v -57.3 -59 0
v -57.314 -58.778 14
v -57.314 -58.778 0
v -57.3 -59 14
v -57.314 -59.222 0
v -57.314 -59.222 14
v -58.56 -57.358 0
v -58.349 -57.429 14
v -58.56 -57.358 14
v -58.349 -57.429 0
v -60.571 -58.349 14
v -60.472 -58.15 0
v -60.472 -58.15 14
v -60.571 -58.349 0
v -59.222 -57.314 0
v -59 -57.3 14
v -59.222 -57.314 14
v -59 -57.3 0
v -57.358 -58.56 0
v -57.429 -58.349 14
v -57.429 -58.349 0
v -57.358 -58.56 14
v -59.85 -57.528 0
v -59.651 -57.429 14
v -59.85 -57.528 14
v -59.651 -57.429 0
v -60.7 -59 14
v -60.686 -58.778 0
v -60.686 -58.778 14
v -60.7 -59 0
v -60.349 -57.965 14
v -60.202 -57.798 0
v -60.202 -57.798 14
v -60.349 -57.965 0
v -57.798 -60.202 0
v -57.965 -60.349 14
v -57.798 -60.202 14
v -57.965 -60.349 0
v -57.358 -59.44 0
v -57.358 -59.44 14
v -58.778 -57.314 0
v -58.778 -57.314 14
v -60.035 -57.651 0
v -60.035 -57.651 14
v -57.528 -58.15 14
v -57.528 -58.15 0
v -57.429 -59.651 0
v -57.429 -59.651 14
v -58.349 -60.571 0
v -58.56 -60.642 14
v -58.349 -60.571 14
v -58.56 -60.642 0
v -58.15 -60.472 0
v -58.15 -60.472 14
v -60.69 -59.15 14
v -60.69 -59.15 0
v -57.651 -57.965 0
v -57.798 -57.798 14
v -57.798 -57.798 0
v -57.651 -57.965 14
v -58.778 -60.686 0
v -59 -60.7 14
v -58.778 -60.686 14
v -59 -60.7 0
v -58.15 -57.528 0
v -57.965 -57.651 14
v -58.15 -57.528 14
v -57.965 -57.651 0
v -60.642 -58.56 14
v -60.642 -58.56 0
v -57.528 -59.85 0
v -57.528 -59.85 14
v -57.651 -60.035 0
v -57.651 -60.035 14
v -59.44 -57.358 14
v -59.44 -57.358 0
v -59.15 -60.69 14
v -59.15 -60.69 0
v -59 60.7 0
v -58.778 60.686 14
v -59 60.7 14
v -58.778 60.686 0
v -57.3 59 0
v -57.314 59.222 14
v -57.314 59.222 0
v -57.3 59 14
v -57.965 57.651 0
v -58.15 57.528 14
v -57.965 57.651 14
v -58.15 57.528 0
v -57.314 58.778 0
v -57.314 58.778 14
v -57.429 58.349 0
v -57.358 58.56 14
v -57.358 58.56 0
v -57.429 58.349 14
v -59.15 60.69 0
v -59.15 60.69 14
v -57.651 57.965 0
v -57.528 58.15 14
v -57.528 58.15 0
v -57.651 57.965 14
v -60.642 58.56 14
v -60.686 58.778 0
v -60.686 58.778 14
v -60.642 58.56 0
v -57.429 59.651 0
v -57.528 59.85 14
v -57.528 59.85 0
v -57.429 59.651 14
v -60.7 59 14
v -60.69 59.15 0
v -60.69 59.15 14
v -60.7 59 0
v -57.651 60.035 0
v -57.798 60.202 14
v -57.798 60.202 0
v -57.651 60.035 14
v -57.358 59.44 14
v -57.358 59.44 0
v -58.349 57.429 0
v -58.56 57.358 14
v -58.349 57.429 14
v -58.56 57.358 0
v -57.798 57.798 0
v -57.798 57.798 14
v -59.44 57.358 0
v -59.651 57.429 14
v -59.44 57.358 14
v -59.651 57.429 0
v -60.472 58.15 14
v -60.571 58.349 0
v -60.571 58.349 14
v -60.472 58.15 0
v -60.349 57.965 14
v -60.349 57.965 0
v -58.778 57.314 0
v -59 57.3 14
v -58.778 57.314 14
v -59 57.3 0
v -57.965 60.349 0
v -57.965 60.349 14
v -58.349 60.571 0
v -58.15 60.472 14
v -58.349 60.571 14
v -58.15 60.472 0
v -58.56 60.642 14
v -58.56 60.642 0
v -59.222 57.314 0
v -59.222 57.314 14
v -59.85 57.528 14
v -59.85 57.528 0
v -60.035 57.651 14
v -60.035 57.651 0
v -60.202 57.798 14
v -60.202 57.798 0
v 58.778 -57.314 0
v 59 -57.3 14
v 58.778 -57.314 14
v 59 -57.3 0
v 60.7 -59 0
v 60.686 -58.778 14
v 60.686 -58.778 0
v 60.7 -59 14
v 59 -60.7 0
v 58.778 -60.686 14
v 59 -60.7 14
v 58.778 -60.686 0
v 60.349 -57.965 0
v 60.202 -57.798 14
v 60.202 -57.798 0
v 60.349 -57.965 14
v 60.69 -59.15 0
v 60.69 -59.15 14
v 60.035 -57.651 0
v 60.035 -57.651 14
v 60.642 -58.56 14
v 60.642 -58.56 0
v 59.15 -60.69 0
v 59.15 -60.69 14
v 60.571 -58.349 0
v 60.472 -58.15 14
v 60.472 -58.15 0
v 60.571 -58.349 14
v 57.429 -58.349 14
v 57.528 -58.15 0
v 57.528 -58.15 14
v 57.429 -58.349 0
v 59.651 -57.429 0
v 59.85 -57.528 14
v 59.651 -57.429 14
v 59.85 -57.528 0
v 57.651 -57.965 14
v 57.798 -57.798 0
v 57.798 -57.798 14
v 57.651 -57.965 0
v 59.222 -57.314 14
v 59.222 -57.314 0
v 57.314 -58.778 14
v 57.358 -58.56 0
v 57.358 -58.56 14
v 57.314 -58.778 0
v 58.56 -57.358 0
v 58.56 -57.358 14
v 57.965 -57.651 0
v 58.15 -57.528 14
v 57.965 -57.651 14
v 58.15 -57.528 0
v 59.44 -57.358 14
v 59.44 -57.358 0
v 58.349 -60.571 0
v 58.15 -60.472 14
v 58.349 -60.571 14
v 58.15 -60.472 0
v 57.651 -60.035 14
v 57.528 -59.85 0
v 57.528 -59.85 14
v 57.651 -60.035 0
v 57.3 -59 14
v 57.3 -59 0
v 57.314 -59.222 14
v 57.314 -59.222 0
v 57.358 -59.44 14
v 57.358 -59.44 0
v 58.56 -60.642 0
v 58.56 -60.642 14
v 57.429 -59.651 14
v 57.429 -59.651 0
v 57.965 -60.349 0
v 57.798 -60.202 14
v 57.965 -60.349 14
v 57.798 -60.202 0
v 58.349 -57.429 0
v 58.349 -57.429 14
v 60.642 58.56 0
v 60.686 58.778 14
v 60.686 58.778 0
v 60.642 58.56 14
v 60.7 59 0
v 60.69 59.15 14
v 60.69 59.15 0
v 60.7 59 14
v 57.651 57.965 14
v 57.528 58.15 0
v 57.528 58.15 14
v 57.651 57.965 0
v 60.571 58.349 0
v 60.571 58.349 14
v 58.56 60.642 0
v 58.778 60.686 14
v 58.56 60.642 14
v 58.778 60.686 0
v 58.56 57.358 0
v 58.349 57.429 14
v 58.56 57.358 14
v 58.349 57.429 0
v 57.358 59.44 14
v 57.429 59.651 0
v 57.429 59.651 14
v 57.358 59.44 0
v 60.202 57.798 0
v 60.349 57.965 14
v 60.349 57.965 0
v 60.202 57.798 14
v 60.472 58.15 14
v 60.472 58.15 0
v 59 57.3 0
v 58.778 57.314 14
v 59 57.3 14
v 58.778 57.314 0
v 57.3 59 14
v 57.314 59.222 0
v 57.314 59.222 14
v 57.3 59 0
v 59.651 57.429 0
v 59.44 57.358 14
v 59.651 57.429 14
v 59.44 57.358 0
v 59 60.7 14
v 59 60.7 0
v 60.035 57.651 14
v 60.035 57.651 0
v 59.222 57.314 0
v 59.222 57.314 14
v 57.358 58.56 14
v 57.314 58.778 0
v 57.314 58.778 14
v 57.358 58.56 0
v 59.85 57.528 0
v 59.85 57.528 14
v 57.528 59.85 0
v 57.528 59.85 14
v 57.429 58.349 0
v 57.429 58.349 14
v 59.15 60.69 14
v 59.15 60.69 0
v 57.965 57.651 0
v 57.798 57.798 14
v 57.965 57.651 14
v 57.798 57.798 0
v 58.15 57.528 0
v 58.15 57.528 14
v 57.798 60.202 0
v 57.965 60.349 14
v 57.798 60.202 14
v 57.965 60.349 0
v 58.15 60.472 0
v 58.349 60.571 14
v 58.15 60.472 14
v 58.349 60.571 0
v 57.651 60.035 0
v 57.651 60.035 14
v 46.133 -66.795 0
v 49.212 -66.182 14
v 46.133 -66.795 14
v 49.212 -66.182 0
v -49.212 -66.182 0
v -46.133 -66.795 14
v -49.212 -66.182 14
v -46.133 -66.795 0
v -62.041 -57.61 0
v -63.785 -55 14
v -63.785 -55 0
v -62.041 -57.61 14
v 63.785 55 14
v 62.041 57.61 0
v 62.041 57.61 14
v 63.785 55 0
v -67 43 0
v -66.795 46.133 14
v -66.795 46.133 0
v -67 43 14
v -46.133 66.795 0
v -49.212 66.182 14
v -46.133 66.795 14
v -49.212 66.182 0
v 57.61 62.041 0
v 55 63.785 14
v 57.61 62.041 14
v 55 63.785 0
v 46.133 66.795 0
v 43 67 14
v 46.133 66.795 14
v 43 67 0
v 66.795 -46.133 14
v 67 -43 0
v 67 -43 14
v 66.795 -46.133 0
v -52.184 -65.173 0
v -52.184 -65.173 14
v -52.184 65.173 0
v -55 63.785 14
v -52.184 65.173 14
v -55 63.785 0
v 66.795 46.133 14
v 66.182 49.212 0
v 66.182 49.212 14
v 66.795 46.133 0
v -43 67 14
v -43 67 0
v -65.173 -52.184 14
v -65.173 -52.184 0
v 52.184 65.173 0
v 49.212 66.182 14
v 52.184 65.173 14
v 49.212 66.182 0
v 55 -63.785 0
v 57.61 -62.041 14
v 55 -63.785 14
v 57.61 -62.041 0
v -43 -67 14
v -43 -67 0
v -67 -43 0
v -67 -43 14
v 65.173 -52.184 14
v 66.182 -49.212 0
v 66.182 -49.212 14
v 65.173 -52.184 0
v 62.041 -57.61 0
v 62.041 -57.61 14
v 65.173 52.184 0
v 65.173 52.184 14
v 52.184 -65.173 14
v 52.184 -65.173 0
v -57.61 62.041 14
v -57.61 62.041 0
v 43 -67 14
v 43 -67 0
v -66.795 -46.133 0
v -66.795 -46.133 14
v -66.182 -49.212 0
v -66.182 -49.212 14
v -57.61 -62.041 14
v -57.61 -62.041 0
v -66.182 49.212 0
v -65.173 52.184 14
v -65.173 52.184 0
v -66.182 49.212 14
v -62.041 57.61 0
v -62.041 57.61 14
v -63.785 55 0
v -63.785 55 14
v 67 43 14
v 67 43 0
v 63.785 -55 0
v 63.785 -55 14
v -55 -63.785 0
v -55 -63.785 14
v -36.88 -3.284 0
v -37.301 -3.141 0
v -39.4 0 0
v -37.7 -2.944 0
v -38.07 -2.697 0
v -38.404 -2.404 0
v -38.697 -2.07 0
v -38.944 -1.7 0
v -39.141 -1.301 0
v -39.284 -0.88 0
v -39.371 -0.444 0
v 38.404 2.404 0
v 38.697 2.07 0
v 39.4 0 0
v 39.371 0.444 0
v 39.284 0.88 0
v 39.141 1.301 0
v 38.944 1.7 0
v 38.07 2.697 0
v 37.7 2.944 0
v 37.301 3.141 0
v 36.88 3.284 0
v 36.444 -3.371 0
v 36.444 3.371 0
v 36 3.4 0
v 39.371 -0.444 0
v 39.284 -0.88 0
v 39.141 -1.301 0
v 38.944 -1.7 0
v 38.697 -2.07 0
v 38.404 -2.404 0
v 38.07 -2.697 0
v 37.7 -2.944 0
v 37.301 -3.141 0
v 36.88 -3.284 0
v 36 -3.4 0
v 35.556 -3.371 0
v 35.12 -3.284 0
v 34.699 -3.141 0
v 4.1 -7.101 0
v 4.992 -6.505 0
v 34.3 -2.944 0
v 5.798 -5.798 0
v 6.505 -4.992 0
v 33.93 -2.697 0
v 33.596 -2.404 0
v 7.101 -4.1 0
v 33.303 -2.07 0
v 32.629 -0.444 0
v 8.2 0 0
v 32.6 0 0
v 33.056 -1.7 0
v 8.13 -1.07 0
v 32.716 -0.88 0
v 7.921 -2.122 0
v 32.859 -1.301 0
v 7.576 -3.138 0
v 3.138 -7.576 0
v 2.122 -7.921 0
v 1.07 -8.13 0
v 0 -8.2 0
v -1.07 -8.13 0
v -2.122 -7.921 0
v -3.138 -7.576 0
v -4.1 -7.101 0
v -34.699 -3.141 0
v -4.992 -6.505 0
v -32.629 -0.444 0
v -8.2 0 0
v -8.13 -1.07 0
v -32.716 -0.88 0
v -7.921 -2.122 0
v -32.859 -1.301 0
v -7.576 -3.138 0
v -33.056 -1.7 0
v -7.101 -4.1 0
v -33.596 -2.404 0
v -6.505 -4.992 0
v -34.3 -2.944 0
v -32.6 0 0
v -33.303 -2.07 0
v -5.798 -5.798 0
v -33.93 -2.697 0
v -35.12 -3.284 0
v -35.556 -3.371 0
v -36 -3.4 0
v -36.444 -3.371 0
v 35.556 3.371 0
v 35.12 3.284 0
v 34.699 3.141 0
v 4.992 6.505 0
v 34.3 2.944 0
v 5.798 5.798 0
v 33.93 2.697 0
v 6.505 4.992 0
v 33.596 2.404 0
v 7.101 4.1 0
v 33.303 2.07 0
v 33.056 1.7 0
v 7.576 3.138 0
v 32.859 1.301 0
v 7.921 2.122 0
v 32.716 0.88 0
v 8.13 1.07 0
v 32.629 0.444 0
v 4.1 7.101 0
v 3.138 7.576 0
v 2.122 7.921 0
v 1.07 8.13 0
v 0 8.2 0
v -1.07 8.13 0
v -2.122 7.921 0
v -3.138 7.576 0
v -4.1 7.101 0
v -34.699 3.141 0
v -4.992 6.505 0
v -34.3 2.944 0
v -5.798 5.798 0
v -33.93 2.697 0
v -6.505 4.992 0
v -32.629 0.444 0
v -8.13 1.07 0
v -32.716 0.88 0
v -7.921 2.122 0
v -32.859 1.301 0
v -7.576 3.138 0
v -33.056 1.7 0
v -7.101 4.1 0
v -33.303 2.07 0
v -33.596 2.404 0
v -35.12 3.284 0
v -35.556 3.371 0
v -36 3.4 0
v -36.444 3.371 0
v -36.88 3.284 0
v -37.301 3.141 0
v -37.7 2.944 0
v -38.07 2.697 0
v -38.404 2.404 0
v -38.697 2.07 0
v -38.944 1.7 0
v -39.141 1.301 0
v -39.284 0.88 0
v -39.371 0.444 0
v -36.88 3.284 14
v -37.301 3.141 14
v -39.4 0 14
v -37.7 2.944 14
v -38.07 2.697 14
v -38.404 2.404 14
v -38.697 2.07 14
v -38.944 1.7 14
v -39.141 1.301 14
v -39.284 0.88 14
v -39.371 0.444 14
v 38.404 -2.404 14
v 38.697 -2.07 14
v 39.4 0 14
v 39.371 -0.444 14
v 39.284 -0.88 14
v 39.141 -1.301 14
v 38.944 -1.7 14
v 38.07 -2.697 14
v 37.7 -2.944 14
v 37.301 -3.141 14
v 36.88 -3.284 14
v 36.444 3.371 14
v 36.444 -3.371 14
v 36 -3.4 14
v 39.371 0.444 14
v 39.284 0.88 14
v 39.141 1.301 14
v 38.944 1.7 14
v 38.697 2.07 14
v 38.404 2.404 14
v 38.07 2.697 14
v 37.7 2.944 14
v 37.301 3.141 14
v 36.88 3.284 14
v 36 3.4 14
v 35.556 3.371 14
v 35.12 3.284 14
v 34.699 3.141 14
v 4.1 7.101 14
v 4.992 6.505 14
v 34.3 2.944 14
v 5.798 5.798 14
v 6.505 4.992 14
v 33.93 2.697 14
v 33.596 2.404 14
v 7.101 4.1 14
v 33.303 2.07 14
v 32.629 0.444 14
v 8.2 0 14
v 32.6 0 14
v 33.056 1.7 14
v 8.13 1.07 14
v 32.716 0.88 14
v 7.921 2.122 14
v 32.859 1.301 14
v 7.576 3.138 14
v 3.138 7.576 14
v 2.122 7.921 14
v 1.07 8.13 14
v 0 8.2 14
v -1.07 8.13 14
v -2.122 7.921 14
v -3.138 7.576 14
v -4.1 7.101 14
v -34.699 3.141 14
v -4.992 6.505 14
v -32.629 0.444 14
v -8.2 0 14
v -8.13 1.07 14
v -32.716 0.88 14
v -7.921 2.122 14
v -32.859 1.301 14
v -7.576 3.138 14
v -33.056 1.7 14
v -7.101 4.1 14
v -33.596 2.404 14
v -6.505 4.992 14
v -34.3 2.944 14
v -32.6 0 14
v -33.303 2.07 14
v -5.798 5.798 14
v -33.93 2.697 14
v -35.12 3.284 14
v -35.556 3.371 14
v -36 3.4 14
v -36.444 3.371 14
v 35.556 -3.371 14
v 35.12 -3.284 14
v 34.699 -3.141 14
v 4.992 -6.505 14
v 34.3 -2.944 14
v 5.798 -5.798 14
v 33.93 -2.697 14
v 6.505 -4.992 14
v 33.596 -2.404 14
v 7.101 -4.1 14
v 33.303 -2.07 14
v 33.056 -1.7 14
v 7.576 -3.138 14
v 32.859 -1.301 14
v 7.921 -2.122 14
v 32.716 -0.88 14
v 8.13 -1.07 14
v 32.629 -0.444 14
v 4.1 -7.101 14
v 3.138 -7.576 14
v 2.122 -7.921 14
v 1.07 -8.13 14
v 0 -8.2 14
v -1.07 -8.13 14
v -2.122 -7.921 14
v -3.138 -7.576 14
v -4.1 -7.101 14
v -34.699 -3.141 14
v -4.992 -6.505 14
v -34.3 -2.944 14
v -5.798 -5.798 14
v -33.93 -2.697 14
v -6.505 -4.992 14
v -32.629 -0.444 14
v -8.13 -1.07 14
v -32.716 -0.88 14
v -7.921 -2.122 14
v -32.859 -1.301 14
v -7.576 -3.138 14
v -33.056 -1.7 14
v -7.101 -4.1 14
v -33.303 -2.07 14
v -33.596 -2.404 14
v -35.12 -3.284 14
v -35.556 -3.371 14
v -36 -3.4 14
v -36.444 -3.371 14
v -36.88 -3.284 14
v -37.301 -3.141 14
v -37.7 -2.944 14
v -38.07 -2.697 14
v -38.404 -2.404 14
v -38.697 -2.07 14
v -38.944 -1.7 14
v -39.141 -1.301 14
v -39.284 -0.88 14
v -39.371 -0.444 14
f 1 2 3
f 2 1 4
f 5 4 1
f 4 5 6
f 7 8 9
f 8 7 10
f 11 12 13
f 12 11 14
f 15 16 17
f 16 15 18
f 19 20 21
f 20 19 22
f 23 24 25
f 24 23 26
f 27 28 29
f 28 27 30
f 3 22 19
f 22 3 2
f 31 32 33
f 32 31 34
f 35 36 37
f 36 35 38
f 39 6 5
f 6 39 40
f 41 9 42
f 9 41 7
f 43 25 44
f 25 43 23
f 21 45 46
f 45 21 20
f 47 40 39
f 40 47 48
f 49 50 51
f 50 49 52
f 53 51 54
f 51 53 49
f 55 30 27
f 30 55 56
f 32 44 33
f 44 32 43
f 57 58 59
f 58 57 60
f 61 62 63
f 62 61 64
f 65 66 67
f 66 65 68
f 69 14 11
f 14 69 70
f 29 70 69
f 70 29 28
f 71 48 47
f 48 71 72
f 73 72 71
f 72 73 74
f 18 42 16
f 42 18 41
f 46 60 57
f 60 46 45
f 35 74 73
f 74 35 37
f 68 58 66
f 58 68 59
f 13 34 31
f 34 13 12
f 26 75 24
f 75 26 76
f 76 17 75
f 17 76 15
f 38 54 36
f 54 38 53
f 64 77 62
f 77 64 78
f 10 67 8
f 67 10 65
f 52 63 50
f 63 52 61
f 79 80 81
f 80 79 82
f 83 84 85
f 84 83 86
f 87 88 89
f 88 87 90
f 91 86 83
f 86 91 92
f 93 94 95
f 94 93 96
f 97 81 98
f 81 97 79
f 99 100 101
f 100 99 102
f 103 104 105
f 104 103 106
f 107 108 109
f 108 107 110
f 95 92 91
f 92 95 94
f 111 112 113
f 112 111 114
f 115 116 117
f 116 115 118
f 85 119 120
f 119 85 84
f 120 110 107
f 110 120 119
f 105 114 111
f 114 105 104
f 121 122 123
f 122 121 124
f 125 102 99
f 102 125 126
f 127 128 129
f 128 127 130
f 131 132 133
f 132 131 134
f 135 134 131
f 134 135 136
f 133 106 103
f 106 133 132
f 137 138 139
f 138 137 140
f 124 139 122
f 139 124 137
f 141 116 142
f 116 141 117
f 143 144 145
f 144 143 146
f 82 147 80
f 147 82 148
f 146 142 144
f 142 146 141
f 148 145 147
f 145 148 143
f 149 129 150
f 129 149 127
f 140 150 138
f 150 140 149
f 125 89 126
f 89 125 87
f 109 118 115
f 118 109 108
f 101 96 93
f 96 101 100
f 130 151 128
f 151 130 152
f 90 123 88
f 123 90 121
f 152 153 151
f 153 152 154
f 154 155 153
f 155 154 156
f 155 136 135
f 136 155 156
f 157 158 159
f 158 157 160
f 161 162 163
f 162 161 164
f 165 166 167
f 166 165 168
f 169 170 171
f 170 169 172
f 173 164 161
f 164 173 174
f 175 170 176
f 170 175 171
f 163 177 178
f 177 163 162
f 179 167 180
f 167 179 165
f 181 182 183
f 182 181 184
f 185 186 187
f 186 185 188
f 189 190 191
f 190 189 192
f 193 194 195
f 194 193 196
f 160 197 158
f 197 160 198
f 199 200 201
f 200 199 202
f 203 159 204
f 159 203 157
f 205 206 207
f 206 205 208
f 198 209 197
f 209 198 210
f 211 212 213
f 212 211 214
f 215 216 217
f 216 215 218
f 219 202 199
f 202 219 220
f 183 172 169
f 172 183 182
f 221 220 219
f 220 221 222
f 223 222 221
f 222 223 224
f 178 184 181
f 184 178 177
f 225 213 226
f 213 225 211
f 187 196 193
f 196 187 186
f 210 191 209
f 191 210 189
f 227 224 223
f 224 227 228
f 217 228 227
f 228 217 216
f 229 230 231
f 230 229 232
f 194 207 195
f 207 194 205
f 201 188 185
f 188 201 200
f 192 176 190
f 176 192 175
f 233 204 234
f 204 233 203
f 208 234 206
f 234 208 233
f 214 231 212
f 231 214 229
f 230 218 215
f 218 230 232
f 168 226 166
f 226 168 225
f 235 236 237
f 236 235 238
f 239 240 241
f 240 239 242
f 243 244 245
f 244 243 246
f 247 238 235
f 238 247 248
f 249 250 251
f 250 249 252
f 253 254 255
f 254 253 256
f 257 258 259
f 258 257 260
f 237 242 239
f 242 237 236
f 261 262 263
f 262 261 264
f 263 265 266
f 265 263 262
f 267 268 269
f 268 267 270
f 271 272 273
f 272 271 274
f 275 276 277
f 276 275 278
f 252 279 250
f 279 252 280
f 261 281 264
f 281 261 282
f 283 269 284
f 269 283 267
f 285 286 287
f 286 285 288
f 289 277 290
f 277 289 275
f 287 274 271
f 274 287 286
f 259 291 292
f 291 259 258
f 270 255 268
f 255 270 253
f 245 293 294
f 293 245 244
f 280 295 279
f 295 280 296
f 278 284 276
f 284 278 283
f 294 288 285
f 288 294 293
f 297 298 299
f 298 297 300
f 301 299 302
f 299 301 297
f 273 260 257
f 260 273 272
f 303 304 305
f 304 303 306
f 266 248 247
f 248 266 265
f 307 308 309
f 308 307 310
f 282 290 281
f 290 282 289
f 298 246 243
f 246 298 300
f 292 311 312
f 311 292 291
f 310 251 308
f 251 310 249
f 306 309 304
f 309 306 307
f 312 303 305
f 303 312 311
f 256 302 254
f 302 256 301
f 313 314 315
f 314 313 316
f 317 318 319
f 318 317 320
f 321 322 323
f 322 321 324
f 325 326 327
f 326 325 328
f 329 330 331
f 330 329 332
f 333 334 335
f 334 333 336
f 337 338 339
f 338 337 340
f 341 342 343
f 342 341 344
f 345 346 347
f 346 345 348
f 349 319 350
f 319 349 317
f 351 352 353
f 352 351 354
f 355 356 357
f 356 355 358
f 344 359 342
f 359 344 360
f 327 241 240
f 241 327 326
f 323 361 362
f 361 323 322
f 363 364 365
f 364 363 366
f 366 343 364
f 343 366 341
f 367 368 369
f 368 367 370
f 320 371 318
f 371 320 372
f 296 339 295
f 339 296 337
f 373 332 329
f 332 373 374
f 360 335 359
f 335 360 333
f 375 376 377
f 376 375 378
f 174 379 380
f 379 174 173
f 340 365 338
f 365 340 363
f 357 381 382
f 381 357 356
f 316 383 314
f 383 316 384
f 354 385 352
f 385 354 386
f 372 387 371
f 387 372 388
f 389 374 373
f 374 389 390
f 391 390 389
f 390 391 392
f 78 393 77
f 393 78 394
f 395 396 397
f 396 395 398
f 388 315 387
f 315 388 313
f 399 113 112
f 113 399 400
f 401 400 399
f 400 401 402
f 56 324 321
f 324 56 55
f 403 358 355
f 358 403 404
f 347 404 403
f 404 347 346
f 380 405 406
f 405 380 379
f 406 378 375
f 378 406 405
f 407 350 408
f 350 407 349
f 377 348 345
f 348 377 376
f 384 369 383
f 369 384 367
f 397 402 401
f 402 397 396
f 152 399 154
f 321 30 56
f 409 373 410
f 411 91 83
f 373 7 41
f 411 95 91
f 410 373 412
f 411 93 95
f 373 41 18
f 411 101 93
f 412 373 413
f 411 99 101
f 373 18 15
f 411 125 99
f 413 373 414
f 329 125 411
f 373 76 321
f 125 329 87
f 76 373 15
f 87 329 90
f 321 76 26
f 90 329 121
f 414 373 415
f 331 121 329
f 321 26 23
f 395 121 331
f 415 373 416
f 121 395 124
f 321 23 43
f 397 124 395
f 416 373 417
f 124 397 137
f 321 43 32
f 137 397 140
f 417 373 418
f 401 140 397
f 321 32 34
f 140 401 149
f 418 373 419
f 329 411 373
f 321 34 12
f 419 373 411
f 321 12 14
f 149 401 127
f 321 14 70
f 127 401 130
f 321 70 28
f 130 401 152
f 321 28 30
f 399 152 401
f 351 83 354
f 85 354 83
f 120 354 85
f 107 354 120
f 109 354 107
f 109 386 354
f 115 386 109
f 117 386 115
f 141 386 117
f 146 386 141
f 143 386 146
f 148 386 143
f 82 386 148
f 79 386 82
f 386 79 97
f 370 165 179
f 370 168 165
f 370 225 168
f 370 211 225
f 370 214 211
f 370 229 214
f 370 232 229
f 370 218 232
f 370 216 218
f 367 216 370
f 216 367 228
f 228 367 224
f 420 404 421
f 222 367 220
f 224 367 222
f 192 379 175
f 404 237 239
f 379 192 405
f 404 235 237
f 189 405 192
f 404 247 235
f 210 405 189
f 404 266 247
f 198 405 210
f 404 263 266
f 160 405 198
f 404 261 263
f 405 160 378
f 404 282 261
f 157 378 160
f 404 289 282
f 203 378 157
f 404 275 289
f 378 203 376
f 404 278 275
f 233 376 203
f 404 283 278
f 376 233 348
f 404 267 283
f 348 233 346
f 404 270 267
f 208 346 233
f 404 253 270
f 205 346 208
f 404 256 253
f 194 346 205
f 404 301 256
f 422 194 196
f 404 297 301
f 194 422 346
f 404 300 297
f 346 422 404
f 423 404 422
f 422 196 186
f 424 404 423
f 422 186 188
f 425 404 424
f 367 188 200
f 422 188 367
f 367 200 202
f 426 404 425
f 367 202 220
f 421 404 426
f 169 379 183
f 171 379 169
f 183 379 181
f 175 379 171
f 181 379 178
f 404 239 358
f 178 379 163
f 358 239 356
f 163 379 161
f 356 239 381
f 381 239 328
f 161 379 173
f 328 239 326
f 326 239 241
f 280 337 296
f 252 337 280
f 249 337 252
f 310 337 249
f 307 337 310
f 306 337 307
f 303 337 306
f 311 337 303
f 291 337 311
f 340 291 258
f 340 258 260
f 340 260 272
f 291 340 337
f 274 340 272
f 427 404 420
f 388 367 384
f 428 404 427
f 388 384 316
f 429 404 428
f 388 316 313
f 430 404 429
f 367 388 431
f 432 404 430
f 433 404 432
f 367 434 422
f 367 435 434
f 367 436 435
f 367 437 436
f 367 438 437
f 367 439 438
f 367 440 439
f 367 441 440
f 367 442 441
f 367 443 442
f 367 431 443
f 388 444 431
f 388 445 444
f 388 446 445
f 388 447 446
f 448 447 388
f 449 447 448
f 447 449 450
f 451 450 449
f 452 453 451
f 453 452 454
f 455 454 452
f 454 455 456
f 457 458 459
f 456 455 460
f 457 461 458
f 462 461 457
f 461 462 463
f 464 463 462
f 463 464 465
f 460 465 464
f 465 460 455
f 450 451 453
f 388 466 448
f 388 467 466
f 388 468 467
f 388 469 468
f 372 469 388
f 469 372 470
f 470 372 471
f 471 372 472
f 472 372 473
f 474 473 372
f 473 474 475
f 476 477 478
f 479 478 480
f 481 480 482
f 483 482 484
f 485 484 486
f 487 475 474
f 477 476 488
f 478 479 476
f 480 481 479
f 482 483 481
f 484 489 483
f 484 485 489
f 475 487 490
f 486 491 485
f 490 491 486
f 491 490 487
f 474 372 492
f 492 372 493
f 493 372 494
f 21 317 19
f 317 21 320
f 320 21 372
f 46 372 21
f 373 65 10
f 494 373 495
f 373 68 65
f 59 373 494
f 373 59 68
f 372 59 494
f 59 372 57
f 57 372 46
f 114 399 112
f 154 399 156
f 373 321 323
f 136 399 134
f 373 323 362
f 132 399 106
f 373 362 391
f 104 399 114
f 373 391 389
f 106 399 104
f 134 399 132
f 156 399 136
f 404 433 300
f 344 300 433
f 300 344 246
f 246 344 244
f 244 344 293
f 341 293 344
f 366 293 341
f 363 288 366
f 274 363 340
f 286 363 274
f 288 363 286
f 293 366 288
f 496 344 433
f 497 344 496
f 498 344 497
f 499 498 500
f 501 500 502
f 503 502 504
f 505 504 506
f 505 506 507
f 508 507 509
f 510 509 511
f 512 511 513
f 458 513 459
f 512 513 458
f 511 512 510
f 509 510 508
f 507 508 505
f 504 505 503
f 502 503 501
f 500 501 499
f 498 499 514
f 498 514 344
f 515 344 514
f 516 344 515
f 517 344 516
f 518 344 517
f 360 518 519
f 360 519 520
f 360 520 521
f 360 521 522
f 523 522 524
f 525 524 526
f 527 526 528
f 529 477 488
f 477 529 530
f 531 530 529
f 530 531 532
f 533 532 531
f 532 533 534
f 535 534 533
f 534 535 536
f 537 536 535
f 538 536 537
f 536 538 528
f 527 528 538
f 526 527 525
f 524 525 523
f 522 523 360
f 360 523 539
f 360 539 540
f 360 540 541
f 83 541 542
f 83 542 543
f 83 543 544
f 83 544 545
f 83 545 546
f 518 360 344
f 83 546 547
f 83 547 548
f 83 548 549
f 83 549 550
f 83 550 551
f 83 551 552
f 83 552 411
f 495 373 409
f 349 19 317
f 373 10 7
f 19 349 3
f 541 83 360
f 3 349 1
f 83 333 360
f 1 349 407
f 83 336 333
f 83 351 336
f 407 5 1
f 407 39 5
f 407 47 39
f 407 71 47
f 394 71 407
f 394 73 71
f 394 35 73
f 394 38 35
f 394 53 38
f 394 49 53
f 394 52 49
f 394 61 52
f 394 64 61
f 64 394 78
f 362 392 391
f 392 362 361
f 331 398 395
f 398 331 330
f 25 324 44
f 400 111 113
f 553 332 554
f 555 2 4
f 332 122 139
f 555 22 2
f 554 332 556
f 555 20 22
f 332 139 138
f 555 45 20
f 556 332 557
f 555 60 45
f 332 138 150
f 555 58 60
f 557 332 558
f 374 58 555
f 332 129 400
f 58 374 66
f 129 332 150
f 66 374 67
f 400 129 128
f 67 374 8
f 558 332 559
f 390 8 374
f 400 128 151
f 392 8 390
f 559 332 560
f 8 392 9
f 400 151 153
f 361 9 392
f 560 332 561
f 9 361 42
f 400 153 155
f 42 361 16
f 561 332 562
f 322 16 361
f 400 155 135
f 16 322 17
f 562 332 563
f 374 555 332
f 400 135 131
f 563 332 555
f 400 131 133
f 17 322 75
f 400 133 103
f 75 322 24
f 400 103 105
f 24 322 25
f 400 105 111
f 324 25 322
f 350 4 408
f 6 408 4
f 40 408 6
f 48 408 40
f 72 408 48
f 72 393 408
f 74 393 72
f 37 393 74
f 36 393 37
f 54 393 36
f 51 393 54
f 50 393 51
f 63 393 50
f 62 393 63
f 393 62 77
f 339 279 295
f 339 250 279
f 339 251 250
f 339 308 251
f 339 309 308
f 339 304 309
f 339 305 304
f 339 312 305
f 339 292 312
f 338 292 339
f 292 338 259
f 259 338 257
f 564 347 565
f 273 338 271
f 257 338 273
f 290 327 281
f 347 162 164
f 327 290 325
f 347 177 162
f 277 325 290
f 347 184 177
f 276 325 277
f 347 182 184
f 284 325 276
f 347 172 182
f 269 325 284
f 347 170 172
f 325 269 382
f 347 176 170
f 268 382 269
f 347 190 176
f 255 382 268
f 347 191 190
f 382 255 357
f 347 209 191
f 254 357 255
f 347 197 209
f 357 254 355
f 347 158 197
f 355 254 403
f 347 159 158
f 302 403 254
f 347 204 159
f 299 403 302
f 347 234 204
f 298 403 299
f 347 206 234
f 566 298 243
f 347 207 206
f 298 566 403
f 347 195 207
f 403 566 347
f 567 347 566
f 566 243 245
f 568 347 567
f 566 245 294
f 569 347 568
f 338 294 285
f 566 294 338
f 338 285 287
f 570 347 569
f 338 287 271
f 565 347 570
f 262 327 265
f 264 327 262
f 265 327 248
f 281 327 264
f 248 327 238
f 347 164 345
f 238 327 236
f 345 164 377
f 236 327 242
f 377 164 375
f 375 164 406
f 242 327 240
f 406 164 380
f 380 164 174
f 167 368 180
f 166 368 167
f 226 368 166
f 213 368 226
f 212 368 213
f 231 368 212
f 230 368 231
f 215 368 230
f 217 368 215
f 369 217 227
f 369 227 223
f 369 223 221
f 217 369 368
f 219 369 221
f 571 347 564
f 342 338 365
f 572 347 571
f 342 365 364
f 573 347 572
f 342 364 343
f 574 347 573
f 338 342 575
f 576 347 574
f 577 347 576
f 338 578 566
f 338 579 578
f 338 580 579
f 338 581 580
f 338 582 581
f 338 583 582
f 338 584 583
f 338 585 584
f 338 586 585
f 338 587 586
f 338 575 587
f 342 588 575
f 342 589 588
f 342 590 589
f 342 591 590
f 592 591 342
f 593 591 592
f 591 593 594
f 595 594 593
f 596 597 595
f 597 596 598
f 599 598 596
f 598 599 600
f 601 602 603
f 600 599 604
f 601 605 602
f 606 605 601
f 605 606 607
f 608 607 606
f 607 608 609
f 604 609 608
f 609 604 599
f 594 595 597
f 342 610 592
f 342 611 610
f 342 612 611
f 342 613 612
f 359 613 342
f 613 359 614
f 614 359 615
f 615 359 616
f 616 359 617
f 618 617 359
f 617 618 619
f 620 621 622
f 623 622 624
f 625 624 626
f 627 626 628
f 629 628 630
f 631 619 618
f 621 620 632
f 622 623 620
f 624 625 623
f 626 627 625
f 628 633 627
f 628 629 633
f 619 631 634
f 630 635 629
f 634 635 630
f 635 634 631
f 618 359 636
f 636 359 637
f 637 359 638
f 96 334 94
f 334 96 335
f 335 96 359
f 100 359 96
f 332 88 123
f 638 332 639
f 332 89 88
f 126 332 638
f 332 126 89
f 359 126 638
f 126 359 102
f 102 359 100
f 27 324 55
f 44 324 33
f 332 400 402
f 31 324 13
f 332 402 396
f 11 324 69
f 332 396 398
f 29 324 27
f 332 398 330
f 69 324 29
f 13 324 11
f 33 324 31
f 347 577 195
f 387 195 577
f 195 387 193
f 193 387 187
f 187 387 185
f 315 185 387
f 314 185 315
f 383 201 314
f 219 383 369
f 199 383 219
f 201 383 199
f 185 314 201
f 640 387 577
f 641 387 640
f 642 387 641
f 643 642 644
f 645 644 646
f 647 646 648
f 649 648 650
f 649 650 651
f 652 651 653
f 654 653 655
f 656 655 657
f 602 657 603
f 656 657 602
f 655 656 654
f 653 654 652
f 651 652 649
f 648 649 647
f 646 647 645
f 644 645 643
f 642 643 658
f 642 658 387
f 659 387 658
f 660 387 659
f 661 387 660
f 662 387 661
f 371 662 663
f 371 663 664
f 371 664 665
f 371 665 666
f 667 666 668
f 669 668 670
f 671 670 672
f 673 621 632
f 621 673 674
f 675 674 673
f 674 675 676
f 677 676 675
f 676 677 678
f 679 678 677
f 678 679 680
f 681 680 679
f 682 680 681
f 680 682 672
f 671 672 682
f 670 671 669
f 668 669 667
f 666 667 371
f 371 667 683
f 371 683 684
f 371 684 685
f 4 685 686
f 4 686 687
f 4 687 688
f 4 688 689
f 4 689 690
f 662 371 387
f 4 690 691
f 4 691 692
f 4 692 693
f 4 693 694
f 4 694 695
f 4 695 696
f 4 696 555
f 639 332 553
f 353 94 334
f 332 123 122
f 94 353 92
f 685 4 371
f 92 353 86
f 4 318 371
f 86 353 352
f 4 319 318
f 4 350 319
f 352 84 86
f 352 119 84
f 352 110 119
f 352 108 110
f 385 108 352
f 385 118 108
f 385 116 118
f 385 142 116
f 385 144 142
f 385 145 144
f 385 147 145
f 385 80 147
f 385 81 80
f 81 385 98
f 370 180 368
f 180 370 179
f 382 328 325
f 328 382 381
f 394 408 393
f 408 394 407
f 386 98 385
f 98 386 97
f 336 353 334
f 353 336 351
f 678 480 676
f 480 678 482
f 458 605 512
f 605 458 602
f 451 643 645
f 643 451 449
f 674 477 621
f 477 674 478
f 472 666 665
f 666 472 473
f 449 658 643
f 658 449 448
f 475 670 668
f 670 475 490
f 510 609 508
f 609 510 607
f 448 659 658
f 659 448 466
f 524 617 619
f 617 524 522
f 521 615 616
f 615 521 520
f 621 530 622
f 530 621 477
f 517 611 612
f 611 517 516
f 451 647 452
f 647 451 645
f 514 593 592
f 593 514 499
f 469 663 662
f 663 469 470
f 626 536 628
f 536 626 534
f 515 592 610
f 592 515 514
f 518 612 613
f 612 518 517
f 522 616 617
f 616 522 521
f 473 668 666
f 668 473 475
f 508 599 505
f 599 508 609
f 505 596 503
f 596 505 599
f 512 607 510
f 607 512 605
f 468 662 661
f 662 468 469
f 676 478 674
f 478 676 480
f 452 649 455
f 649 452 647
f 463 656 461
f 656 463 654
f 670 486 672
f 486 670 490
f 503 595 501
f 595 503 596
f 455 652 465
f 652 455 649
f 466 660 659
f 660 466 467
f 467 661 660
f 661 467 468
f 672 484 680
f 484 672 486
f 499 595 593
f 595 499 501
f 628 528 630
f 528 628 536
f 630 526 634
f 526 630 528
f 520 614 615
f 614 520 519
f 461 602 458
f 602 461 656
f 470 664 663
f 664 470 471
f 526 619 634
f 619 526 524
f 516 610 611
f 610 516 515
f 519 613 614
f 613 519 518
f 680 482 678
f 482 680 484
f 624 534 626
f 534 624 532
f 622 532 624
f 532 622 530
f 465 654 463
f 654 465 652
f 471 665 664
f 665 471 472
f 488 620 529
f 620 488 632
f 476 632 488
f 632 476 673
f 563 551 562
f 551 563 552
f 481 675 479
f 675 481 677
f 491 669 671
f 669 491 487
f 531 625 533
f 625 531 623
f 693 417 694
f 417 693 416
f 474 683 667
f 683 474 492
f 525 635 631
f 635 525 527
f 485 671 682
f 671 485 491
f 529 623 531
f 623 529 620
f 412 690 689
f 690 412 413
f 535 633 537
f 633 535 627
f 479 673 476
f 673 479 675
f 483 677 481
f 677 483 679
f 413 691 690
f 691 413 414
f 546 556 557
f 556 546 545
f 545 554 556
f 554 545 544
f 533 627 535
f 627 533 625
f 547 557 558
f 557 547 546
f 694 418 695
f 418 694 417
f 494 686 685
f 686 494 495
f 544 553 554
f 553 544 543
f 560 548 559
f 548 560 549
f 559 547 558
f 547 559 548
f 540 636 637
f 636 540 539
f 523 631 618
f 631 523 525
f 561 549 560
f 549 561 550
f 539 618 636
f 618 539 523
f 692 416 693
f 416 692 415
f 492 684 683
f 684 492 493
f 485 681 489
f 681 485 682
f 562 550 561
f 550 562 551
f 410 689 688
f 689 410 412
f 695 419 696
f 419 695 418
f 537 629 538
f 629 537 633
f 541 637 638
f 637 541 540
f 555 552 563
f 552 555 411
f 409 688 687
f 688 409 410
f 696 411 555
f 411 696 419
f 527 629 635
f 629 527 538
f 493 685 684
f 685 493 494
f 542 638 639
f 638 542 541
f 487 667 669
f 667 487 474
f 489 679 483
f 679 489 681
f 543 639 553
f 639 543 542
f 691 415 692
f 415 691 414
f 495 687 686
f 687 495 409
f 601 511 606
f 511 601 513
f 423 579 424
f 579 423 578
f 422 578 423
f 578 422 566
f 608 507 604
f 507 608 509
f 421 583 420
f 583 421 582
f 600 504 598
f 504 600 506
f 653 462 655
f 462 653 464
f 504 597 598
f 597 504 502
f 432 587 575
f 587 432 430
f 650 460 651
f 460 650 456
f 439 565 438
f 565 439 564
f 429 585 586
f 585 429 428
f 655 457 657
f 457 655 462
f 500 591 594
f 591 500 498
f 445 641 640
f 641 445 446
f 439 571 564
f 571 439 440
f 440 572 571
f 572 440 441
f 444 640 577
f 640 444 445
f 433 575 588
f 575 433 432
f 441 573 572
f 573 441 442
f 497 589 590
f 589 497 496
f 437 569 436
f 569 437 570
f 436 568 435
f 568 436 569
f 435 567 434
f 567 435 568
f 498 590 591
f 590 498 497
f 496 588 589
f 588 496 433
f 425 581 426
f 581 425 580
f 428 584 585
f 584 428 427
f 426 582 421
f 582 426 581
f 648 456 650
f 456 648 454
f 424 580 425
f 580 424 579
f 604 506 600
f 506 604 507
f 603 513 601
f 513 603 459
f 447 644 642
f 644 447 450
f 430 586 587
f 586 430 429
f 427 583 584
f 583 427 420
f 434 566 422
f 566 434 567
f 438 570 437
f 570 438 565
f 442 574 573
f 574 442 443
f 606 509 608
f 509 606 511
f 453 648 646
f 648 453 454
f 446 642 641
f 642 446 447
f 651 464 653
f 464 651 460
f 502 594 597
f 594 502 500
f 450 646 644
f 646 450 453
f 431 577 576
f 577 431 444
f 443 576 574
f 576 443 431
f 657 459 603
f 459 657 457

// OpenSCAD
// ============================================================================
// Get Me An Alt — Parametric OpenSCAD Module
// Part: PRT-02 — J1 Azimuth Rotary Turntable & Ring Gear Deck (turntable-plate)
// Function: Rotates ±180° around Z-axis on the J1 waist bearing.
// Target Bounding Box (mm): [134, 134, 14]
// Print Material: PETG | Min Wall: >= 1.6mm | Tolerance: 0.2mm
// ============================================================================
$fn = 48;
part_width = 134;
part_depth = 134;
part_height = 14;
wall_thickness = 3.2;
floor_thickness = 3.2;
corner_radius = 24;
tolerance = 0.2;
m3_clearance_d = 3.4; // M3 screw clearance hole (3.0mm + 2*0.2mm)

module rounded_rect_prism(w, d, h, r) {
  cr = max(0.5, min(r, min(w, d) / 2 - 0.1));
  linear_extrude(height = h)
    offset(r = cr)
      offset(r = -cr)
        square([w, d], center = true);
}

module part_turntable_plate() {
  difference() {
    rounded_rect_prism(part_width, part_depth, part_height, corner_radius);
    translate([0, 0, -1]) cylinder(h = part_height + 2, r = 8 + tolerance);
    translate([-36, 0, -1]) cylinder(h = part_height + 2, r = 3.2 + tolerance);
    translate([36, 0, -1]) cylinder(h = part_height + 2, r = 3.2 + tolerance);
    // M3 corner mounting holes
    for (mx = [-1, 1], my = [-1, 1]) {
      translate([mx * (part_width / 2 - 8), my * (part_depth / 2 - 8), -1])
        cylinder(h = part_height + 2, d = m3_clearance_d);
    }
  }
}

part_turntable_plate();
